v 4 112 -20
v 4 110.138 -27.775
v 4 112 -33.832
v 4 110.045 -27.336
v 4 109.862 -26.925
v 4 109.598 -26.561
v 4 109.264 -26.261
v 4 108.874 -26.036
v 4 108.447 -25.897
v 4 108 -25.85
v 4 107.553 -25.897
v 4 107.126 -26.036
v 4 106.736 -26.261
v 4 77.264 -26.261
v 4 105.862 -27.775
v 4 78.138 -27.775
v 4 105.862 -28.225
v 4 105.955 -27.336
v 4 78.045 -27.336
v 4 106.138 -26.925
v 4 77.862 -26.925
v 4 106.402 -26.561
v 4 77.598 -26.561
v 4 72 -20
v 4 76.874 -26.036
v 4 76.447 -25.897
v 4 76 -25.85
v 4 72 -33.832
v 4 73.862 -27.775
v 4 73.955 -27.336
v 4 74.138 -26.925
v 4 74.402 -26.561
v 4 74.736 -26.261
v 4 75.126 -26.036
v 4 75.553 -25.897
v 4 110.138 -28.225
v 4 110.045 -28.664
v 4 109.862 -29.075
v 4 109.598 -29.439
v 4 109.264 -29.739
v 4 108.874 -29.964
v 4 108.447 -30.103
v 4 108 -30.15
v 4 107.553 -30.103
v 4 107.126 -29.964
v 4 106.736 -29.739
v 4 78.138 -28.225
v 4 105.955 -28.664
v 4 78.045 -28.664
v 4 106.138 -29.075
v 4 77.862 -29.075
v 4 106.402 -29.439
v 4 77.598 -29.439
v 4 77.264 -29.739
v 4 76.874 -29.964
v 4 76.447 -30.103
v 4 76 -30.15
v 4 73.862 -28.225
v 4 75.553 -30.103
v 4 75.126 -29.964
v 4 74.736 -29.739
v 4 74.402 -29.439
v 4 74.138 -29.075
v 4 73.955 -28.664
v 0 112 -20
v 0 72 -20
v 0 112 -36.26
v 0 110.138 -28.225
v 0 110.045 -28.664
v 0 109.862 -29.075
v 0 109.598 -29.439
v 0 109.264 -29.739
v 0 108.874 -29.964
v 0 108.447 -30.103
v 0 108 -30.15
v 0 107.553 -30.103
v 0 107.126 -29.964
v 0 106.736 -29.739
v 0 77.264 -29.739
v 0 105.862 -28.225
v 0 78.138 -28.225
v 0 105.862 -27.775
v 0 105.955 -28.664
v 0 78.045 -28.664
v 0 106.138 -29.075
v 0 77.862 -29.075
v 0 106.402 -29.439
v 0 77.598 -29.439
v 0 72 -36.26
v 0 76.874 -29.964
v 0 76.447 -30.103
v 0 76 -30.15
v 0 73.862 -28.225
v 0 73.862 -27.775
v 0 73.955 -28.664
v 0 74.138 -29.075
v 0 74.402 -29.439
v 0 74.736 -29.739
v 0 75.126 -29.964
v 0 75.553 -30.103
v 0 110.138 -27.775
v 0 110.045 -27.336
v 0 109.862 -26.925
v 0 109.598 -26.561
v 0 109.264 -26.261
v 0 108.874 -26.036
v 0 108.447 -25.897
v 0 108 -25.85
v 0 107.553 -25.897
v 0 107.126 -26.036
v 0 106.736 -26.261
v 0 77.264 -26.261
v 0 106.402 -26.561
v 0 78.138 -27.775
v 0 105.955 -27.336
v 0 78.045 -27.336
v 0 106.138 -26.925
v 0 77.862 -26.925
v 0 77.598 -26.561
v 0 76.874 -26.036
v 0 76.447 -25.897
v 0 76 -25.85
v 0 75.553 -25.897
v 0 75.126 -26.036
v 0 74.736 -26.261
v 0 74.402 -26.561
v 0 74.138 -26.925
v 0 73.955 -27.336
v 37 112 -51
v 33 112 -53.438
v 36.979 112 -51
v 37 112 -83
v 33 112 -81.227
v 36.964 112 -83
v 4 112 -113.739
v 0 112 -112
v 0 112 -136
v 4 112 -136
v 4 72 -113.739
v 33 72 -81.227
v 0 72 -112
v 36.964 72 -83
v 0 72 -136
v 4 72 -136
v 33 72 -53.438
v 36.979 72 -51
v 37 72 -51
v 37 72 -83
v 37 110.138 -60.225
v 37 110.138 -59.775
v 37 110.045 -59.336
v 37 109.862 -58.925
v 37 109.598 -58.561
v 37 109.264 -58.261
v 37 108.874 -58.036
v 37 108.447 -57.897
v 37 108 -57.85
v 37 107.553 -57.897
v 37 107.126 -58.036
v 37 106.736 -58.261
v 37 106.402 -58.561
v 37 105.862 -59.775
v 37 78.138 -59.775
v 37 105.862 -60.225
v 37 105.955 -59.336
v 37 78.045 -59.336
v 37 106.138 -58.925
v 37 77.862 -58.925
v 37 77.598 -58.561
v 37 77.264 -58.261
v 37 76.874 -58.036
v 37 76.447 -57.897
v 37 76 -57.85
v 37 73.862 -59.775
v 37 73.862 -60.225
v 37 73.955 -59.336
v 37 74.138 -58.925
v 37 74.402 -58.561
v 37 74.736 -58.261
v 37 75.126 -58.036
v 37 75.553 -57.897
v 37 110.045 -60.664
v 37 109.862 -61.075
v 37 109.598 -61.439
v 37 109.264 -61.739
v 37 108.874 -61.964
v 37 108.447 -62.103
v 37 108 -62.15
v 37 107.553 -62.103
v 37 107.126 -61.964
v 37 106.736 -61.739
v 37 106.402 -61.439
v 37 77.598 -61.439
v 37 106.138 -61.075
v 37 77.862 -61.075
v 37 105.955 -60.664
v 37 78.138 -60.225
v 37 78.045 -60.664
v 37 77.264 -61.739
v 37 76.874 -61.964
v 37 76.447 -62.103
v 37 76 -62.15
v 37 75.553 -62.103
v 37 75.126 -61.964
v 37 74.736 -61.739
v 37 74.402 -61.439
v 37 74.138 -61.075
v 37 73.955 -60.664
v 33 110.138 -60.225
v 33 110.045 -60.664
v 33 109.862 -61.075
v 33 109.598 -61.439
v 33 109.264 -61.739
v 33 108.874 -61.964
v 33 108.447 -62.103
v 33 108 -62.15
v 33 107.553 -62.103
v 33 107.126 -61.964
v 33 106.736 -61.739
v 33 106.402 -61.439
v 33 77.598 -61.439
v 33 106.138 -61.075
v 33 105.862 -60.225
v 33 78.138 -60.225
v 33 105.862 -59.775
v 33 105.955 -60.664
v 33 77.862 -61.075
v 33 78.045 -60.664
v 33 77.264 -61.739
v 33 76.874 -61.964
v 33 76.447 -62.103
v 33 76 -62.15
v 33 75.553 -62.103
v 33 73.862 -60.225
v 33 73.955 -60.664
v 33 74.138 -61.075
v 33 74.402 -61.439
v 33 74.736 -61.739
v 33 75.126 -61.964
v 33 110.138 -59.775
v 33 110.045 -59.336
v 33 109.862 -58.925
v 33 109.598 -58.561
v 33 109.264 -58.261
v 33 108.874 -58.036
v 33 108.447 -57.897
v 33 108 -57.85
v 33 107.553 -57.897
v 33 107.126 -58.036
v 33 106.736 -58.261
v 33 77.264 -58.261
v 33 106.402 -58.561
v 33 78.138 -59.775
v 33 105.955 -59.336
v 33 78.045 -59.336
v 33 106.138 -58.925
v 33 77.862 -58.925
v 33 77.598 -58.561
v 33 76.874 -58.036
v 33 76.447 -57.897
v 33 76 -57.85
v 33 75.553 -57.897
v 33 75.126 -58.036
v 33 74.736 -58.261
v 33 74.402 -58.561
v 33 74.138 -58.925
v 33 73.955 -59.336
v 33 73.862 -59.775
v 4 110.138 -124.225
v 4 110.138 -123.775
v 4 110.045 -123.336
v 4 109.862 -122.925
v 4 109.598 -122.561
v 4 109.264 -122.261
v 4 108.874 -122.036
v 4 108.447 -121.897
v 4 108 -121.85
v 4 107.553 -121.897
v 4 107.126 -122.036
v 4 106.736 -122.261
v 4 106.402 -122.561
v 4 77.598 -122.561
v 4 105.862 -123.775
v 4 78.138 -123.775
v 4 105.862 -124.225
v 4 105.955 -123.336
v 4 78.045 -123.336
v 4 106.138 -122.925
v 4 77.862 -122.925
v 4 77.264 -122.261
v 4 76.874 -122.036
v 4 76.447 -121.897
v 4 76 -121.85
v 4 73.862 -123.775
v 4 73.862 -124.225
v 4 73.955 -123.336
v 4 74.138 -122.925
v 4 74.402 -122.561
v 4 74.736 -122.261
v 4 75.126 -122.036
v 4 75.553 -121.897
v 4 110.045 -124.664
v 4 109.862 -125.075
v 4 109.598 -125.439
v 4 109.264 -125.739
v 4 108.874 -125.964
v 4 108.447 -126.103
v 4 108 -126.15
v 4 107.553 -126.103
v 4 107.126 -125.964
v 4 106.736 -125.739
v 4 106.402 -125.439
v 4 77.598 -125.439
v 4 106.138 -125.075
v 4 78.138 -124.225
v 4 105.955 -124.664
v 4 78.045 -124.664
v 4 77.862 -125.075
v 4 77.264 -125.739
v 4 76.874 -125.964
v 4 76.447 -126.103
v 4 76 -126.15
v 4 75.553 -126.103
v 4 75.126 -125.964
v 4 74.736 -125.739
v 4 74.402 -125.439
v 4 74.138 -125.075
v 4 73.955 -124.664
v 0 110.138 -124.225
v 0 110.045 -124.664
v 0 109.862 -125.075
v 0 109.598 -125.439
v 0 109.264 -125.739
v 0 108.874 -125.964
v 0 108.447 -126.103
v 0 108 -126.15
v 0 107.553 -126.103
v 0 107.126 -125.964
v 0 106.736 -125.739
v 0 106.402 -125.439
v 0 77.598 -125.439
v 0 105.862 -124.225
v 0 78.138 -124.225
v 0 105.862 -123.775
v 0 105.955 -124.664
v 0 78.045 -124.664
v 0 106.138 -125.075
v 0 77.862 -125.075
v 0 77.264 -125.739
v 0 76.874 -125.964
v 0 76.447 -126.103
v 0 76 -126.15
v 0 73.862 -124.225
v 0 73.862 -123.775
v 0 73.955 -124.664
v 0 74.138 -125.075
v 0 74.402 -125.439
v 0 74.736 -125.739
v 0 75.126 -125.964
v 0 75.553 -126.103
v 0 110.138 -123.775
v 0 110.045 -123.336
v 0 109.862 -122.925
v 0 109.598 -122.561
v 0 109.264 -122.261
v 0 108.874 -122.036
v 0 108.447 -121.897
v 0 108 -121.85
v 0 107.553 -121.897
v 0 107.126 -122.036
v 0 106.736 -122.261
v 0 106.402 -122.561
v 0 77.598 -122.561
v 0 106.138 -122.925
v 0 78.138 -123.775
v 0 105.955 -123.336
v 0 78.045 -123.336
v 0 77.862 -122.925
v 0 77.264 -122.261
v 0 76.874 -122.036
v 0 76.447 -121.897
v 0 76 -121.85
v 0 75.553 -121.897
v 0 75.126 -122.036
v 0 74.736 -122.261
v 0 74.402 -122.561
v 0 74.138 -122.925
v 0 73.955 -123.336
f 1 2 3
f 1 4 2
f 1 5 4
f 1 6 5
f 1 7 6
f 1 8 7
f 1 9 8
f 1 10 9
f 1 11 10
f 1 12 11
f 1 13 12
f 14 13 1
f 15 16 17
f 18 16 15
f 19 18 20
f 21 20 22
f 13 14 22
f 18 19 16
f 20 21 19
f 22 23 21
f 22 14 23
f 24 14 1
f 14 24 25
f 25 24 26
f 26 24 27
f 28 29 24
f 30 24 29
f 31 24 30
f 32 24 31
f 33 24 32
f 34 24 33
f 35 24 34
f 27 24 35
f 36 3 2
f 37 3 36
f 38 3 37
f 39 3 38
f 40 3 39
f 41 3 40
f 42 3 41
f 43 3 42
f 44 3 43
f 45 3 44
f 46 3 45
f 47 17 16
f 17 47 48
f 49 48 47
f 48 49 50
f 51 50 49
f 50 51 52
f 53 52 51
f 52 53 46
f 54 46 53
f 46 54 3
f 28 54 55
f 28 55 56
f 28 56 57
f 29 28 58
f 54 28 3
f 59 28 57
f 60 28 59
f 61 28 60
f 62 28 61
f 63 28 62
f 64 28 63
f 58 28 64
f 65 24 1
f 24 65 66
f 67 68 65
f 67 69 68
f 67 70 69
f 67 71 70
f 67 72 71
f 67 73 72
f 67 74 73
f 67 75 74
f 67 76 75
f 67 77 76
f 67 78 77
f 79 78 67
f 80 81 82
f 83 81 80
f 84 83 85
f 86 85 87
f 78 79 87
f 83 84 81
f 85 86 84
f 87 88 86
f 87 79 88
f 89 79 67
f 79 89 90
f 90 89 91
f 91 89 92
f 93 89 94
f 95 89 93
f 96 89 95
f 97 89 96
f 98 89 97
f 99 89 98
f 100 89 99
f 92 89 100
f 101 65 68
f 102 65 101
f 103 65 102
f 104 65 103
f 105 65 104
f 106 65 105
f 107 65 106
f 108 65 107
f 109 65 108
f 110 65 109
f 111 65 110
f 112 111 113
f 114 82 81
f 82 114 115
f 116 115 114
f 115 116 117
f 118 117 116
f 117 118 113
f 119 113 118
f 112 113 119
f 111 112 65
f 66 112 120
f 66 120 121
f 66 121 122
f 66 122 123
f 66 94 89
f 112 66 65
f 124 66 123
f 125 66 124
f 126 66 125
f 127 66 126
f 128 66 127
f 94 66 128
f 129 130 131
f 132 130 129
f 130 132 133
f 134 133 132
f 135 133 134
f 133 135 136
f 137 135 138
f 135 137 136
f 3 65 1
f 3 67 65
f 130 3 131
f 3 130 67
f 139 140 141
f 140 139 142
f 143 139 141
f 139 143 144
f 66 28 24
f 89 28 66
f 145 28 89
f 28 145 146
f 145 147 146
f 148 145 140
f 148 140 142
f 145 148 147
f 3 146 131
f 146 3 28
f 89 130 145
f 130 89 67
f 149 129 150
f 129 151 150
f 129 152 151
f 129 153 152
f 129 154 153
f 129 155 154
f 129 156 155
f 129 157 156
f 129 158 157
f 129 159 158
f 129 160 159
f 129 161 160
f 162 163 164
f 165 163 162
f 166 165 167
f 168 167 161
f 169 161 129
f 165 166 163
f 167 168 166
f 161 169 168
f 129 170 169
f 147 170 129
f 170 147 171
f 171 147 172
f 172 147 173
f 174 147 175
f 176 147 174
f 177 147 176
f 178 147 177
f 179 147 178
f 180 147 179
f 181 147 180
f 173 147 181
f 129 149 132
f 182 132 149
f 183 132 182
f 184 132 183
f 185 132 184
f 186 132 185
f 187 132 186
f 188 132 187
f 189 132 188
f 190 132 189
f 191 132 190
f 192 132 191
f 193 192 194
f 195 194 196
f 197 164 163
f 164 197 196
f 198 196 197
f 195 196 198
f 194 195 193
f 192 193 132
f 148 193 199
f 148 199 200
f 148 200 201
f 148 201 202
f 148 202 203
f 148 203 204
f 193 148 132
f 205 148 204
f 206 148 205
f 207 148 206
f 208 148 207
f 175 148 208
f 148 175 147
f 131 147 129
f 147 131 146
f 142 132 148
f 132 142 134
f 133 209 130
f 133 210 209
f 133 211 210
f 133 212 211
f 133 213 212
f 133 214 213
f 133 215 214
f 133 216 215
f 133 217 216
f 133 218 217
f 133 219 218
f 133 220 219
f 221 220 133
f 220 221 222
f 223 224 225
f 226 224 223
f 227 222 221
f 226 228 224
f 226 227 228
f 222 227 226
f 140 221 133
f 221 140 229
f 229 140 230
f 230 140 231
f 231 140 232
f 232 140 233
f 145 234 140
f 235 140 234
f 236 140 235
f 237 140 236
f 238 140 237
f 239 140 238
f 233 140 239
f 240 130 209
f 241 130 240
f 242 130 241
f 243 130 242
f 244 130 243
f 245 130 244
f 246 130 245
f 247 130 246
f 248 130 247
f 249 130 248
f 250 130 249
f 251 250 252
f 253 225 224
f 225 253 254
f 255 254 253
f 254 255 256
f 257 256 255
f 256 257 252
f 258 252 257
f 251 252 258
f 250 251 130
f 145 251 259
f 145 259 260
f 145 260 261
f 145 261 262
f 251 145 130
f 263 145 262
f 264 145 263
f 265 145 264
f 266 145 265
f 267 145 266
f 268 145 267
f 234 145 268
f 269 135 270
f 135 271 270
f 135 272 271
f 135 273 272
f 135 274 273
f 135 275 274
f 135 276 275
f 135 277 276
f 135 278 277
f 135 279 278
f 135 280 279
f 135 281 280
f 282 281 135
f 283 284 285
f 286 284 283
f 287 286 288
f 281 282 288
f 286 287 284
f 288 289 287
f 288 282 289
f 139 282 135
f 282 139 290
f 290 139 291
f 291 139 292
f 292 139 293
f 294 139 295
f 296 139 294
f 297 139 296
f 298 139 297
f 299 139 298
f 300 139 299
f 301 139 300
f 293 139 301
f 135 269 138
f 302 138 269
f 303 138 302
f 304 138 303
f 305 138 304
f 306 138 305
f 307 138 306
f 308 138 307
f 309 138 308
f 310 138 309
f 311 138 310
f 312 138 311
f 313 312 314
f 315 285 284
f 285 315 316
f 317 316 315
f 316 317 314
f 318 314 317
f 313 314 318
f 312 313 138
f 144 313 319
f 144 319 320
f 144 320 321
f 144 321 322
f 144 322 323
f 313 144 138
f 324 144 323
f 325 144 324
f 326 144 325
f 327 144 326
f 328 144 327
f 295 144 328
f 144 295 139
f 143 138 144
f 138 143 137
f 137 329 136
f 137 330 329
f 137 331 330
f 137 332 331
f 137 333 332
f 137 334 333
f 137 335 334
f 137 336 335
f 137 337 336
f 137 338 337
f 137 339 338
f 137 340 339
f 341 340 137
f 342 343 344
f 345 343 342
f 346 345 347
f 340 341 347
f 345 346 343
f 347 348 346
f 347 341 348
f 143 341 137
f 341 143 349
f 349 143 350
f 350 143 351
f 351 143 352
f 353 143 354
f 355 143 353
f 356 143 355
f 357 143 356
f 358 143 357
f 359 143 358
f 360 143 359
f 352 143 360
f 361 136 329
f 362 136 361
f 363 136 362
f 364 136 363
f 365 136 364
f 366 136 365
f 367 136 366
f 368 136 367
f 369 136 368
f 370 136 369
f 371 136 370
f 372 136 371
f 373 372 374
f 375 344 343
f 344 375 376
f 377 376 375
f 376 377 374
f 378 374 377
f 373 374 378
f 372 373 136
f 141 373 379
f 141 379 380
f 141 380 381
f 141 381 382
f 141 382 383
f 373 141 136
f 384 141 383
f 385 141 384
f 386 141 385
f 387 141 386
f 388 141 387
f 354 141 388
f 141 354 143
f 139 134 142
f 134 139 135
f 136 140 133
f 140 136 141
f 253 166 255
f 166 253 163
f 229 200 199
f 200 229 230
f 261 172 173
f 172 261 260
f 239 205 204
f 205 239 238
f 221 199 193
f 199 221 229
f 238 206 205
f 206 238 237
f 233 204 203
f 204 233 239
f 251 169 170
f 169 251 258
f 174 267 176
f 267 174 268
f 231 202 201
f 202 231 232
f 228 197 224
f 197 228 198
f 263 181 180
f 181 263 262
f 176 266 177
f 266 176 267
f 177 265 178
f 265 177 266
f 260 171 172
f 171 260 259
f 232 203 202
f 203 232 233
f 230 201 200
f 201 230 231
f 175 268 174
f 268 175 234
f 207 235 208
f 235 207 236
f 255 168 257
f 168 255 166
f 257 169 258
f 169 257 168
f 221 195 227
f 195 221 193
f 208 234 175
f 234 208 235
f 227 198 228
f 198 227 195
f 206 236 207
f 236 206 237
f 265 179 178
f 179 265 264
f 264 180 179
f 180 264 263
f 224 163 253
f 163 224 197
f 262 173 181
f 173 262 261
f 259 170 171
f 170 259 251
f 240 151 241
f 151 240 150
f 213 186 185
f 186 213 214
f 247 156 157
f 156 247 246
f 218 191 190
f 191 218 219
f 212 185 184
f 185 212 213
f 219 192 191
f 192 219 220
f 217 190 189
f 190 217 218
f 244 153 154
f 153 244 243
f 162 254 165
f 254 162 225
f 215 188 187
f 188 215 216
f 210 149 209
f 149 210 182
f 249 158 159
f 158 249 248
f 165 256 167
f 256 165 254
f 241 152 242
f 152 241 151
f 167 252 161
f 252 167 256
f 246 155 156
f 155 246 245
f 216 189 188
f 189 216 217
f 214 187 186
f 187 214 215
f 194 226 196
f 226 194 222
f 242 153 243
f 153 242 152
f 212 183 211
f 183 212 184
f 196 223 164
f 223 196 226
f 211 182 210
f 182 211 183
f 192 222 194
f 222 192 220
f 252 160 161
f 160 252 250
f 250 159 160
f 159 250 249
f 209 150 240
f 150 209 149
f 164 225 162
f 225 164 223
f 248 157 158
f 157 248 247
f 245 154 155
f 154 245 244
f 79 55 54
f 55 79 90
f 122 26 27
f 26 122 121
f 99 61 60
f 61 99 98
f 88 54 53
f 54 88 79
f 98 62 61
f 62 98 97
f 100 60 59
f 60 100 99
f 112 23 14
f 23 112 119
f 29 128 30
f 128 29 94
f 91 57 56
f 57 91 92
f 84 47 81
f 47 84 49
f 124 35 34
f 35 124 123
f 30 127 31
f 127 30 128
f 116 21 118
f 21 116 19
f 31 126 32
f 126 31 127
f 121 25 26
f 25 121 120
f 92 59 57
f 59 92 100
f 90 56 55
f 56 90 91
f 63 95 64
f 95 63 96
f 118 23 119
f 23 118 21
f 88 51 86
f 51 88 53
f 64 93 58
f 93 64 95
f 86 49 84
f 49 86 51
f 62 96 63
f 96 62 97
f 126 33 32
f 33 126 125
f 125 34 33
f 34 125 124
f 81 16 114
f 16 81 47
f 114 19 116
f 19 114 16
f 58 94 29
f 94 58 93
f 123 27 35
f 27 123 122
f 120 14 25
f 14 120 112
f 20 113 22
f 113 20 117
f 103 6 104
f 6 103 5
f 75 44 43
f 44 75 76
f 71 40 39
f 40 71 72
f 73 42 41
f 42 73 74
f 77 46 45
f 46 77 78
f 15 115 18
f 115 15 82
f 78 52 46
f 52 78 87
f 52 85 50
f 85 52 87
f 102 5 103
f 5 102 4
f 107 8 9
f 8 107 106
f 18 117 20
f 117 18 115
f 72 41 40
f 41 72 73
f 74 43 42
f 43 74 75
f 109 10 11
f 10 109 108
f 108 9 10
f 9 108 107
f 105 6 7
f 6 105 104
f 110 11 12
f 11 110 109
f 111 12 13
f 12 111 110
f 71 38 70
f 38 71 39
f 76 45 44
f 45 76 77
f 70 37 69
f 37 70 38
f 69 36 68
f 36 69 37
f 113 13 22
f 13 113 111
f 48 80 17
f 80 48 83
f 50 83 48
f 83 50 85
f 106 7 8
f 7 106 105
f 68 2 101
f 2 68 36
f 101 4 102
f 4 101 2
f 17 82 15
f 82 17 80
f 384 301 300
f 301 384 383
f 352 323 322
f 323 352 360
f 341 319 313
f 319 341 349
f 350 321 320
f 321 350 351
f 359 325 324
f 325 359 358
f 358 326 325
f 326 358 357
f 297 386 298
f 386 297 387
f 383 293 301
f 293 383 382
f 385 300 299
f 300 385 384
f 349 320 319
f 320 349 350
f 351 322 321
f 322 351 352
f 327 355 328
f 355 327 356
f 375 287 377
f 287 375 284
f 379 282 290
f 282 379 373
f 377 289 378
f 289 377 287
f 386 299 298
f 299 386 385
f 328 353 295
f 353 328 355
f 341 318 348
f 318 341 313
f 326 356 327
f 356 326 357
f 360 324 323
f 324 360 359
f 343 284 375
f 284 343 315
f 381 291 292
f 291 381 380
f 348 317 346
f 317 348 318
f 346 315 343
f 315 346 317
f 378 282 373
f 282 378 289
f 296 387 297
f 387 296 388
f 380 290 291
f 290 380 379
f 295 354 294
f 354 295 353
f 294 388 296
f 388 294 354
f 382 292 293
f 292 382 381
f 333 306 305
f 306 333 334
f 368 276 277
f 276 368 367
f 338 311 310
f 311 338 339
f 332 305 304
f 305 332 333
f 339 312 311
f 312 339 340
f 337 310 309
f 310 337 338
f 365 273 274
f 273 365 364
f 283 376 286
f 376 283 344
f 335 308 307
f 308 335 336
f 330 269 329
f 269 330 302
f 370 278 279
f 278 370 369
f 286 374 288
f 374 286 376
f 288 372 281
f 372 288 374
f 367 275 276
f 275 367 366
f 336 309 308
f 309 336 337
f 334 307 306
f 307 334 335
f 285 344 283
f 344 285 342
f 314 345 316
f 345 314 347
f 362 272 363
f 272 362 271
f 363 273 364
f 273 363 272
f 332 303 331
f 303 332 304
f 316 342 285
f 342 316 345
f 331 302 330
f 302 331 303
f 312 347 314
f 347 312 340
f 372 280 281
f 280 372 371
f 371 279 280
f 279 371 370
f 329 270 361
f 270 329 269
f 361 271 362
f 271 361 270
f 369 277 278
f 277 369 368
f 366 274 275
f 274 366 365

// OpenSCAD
// back track for left entry bottom tube
// color ("gray")
difference() {
union() {
    // top harness
    translate([0,72,-36])
    cube([4,40,16]);
    
    translate([36,72,-55])
    rotate([0,-62.5,0])
    cube([4,40,43]);
    
    // middle part
    translate([33,72,-83])
    cube([4,40,32]);
    
    // bottom harness
    translate([0,72,-136])
    cube([4,40,24]);
    
    translate([0,72,-112])
    rotate([0,47,0])
    cube([4,40,47]);
}
    // bottom left
    translate([-4,76,-60])
    rotate([0,90,0])
    cylinder(r=2.15,90, $fn=30);

    // bottom right
    translate([-4,108,-60])
    rotate([0,90,0])
    cylinder(r=2.15,90, $fn=30);

    // top holes on harness left and right
    translate([-4,76,-28])
    rotate([0,90,0])
    cylinder(r=2.15,60, $fn=30);

    translate([-4,108,-28])
    rotate([0,90,0])
    cylinder(r=2.15,60, $fn=30);
    
    // bottom holes on harness left and right
    translate([-4,76,-124])
    rotate([0,90,0])
    cylinder(r=2.15,60, $fn=30);

    translate([-4,108,-124])
    rotate([0,90,0])
    cylinder(r=2.15,60, $fn=30);
    
    // clean up front slightly
    translate([37,60,-85])
    cube([5,60,60]);
 
    // clean up back
    translate([-10,60,-60])
    cube([10,60,40]);
}
